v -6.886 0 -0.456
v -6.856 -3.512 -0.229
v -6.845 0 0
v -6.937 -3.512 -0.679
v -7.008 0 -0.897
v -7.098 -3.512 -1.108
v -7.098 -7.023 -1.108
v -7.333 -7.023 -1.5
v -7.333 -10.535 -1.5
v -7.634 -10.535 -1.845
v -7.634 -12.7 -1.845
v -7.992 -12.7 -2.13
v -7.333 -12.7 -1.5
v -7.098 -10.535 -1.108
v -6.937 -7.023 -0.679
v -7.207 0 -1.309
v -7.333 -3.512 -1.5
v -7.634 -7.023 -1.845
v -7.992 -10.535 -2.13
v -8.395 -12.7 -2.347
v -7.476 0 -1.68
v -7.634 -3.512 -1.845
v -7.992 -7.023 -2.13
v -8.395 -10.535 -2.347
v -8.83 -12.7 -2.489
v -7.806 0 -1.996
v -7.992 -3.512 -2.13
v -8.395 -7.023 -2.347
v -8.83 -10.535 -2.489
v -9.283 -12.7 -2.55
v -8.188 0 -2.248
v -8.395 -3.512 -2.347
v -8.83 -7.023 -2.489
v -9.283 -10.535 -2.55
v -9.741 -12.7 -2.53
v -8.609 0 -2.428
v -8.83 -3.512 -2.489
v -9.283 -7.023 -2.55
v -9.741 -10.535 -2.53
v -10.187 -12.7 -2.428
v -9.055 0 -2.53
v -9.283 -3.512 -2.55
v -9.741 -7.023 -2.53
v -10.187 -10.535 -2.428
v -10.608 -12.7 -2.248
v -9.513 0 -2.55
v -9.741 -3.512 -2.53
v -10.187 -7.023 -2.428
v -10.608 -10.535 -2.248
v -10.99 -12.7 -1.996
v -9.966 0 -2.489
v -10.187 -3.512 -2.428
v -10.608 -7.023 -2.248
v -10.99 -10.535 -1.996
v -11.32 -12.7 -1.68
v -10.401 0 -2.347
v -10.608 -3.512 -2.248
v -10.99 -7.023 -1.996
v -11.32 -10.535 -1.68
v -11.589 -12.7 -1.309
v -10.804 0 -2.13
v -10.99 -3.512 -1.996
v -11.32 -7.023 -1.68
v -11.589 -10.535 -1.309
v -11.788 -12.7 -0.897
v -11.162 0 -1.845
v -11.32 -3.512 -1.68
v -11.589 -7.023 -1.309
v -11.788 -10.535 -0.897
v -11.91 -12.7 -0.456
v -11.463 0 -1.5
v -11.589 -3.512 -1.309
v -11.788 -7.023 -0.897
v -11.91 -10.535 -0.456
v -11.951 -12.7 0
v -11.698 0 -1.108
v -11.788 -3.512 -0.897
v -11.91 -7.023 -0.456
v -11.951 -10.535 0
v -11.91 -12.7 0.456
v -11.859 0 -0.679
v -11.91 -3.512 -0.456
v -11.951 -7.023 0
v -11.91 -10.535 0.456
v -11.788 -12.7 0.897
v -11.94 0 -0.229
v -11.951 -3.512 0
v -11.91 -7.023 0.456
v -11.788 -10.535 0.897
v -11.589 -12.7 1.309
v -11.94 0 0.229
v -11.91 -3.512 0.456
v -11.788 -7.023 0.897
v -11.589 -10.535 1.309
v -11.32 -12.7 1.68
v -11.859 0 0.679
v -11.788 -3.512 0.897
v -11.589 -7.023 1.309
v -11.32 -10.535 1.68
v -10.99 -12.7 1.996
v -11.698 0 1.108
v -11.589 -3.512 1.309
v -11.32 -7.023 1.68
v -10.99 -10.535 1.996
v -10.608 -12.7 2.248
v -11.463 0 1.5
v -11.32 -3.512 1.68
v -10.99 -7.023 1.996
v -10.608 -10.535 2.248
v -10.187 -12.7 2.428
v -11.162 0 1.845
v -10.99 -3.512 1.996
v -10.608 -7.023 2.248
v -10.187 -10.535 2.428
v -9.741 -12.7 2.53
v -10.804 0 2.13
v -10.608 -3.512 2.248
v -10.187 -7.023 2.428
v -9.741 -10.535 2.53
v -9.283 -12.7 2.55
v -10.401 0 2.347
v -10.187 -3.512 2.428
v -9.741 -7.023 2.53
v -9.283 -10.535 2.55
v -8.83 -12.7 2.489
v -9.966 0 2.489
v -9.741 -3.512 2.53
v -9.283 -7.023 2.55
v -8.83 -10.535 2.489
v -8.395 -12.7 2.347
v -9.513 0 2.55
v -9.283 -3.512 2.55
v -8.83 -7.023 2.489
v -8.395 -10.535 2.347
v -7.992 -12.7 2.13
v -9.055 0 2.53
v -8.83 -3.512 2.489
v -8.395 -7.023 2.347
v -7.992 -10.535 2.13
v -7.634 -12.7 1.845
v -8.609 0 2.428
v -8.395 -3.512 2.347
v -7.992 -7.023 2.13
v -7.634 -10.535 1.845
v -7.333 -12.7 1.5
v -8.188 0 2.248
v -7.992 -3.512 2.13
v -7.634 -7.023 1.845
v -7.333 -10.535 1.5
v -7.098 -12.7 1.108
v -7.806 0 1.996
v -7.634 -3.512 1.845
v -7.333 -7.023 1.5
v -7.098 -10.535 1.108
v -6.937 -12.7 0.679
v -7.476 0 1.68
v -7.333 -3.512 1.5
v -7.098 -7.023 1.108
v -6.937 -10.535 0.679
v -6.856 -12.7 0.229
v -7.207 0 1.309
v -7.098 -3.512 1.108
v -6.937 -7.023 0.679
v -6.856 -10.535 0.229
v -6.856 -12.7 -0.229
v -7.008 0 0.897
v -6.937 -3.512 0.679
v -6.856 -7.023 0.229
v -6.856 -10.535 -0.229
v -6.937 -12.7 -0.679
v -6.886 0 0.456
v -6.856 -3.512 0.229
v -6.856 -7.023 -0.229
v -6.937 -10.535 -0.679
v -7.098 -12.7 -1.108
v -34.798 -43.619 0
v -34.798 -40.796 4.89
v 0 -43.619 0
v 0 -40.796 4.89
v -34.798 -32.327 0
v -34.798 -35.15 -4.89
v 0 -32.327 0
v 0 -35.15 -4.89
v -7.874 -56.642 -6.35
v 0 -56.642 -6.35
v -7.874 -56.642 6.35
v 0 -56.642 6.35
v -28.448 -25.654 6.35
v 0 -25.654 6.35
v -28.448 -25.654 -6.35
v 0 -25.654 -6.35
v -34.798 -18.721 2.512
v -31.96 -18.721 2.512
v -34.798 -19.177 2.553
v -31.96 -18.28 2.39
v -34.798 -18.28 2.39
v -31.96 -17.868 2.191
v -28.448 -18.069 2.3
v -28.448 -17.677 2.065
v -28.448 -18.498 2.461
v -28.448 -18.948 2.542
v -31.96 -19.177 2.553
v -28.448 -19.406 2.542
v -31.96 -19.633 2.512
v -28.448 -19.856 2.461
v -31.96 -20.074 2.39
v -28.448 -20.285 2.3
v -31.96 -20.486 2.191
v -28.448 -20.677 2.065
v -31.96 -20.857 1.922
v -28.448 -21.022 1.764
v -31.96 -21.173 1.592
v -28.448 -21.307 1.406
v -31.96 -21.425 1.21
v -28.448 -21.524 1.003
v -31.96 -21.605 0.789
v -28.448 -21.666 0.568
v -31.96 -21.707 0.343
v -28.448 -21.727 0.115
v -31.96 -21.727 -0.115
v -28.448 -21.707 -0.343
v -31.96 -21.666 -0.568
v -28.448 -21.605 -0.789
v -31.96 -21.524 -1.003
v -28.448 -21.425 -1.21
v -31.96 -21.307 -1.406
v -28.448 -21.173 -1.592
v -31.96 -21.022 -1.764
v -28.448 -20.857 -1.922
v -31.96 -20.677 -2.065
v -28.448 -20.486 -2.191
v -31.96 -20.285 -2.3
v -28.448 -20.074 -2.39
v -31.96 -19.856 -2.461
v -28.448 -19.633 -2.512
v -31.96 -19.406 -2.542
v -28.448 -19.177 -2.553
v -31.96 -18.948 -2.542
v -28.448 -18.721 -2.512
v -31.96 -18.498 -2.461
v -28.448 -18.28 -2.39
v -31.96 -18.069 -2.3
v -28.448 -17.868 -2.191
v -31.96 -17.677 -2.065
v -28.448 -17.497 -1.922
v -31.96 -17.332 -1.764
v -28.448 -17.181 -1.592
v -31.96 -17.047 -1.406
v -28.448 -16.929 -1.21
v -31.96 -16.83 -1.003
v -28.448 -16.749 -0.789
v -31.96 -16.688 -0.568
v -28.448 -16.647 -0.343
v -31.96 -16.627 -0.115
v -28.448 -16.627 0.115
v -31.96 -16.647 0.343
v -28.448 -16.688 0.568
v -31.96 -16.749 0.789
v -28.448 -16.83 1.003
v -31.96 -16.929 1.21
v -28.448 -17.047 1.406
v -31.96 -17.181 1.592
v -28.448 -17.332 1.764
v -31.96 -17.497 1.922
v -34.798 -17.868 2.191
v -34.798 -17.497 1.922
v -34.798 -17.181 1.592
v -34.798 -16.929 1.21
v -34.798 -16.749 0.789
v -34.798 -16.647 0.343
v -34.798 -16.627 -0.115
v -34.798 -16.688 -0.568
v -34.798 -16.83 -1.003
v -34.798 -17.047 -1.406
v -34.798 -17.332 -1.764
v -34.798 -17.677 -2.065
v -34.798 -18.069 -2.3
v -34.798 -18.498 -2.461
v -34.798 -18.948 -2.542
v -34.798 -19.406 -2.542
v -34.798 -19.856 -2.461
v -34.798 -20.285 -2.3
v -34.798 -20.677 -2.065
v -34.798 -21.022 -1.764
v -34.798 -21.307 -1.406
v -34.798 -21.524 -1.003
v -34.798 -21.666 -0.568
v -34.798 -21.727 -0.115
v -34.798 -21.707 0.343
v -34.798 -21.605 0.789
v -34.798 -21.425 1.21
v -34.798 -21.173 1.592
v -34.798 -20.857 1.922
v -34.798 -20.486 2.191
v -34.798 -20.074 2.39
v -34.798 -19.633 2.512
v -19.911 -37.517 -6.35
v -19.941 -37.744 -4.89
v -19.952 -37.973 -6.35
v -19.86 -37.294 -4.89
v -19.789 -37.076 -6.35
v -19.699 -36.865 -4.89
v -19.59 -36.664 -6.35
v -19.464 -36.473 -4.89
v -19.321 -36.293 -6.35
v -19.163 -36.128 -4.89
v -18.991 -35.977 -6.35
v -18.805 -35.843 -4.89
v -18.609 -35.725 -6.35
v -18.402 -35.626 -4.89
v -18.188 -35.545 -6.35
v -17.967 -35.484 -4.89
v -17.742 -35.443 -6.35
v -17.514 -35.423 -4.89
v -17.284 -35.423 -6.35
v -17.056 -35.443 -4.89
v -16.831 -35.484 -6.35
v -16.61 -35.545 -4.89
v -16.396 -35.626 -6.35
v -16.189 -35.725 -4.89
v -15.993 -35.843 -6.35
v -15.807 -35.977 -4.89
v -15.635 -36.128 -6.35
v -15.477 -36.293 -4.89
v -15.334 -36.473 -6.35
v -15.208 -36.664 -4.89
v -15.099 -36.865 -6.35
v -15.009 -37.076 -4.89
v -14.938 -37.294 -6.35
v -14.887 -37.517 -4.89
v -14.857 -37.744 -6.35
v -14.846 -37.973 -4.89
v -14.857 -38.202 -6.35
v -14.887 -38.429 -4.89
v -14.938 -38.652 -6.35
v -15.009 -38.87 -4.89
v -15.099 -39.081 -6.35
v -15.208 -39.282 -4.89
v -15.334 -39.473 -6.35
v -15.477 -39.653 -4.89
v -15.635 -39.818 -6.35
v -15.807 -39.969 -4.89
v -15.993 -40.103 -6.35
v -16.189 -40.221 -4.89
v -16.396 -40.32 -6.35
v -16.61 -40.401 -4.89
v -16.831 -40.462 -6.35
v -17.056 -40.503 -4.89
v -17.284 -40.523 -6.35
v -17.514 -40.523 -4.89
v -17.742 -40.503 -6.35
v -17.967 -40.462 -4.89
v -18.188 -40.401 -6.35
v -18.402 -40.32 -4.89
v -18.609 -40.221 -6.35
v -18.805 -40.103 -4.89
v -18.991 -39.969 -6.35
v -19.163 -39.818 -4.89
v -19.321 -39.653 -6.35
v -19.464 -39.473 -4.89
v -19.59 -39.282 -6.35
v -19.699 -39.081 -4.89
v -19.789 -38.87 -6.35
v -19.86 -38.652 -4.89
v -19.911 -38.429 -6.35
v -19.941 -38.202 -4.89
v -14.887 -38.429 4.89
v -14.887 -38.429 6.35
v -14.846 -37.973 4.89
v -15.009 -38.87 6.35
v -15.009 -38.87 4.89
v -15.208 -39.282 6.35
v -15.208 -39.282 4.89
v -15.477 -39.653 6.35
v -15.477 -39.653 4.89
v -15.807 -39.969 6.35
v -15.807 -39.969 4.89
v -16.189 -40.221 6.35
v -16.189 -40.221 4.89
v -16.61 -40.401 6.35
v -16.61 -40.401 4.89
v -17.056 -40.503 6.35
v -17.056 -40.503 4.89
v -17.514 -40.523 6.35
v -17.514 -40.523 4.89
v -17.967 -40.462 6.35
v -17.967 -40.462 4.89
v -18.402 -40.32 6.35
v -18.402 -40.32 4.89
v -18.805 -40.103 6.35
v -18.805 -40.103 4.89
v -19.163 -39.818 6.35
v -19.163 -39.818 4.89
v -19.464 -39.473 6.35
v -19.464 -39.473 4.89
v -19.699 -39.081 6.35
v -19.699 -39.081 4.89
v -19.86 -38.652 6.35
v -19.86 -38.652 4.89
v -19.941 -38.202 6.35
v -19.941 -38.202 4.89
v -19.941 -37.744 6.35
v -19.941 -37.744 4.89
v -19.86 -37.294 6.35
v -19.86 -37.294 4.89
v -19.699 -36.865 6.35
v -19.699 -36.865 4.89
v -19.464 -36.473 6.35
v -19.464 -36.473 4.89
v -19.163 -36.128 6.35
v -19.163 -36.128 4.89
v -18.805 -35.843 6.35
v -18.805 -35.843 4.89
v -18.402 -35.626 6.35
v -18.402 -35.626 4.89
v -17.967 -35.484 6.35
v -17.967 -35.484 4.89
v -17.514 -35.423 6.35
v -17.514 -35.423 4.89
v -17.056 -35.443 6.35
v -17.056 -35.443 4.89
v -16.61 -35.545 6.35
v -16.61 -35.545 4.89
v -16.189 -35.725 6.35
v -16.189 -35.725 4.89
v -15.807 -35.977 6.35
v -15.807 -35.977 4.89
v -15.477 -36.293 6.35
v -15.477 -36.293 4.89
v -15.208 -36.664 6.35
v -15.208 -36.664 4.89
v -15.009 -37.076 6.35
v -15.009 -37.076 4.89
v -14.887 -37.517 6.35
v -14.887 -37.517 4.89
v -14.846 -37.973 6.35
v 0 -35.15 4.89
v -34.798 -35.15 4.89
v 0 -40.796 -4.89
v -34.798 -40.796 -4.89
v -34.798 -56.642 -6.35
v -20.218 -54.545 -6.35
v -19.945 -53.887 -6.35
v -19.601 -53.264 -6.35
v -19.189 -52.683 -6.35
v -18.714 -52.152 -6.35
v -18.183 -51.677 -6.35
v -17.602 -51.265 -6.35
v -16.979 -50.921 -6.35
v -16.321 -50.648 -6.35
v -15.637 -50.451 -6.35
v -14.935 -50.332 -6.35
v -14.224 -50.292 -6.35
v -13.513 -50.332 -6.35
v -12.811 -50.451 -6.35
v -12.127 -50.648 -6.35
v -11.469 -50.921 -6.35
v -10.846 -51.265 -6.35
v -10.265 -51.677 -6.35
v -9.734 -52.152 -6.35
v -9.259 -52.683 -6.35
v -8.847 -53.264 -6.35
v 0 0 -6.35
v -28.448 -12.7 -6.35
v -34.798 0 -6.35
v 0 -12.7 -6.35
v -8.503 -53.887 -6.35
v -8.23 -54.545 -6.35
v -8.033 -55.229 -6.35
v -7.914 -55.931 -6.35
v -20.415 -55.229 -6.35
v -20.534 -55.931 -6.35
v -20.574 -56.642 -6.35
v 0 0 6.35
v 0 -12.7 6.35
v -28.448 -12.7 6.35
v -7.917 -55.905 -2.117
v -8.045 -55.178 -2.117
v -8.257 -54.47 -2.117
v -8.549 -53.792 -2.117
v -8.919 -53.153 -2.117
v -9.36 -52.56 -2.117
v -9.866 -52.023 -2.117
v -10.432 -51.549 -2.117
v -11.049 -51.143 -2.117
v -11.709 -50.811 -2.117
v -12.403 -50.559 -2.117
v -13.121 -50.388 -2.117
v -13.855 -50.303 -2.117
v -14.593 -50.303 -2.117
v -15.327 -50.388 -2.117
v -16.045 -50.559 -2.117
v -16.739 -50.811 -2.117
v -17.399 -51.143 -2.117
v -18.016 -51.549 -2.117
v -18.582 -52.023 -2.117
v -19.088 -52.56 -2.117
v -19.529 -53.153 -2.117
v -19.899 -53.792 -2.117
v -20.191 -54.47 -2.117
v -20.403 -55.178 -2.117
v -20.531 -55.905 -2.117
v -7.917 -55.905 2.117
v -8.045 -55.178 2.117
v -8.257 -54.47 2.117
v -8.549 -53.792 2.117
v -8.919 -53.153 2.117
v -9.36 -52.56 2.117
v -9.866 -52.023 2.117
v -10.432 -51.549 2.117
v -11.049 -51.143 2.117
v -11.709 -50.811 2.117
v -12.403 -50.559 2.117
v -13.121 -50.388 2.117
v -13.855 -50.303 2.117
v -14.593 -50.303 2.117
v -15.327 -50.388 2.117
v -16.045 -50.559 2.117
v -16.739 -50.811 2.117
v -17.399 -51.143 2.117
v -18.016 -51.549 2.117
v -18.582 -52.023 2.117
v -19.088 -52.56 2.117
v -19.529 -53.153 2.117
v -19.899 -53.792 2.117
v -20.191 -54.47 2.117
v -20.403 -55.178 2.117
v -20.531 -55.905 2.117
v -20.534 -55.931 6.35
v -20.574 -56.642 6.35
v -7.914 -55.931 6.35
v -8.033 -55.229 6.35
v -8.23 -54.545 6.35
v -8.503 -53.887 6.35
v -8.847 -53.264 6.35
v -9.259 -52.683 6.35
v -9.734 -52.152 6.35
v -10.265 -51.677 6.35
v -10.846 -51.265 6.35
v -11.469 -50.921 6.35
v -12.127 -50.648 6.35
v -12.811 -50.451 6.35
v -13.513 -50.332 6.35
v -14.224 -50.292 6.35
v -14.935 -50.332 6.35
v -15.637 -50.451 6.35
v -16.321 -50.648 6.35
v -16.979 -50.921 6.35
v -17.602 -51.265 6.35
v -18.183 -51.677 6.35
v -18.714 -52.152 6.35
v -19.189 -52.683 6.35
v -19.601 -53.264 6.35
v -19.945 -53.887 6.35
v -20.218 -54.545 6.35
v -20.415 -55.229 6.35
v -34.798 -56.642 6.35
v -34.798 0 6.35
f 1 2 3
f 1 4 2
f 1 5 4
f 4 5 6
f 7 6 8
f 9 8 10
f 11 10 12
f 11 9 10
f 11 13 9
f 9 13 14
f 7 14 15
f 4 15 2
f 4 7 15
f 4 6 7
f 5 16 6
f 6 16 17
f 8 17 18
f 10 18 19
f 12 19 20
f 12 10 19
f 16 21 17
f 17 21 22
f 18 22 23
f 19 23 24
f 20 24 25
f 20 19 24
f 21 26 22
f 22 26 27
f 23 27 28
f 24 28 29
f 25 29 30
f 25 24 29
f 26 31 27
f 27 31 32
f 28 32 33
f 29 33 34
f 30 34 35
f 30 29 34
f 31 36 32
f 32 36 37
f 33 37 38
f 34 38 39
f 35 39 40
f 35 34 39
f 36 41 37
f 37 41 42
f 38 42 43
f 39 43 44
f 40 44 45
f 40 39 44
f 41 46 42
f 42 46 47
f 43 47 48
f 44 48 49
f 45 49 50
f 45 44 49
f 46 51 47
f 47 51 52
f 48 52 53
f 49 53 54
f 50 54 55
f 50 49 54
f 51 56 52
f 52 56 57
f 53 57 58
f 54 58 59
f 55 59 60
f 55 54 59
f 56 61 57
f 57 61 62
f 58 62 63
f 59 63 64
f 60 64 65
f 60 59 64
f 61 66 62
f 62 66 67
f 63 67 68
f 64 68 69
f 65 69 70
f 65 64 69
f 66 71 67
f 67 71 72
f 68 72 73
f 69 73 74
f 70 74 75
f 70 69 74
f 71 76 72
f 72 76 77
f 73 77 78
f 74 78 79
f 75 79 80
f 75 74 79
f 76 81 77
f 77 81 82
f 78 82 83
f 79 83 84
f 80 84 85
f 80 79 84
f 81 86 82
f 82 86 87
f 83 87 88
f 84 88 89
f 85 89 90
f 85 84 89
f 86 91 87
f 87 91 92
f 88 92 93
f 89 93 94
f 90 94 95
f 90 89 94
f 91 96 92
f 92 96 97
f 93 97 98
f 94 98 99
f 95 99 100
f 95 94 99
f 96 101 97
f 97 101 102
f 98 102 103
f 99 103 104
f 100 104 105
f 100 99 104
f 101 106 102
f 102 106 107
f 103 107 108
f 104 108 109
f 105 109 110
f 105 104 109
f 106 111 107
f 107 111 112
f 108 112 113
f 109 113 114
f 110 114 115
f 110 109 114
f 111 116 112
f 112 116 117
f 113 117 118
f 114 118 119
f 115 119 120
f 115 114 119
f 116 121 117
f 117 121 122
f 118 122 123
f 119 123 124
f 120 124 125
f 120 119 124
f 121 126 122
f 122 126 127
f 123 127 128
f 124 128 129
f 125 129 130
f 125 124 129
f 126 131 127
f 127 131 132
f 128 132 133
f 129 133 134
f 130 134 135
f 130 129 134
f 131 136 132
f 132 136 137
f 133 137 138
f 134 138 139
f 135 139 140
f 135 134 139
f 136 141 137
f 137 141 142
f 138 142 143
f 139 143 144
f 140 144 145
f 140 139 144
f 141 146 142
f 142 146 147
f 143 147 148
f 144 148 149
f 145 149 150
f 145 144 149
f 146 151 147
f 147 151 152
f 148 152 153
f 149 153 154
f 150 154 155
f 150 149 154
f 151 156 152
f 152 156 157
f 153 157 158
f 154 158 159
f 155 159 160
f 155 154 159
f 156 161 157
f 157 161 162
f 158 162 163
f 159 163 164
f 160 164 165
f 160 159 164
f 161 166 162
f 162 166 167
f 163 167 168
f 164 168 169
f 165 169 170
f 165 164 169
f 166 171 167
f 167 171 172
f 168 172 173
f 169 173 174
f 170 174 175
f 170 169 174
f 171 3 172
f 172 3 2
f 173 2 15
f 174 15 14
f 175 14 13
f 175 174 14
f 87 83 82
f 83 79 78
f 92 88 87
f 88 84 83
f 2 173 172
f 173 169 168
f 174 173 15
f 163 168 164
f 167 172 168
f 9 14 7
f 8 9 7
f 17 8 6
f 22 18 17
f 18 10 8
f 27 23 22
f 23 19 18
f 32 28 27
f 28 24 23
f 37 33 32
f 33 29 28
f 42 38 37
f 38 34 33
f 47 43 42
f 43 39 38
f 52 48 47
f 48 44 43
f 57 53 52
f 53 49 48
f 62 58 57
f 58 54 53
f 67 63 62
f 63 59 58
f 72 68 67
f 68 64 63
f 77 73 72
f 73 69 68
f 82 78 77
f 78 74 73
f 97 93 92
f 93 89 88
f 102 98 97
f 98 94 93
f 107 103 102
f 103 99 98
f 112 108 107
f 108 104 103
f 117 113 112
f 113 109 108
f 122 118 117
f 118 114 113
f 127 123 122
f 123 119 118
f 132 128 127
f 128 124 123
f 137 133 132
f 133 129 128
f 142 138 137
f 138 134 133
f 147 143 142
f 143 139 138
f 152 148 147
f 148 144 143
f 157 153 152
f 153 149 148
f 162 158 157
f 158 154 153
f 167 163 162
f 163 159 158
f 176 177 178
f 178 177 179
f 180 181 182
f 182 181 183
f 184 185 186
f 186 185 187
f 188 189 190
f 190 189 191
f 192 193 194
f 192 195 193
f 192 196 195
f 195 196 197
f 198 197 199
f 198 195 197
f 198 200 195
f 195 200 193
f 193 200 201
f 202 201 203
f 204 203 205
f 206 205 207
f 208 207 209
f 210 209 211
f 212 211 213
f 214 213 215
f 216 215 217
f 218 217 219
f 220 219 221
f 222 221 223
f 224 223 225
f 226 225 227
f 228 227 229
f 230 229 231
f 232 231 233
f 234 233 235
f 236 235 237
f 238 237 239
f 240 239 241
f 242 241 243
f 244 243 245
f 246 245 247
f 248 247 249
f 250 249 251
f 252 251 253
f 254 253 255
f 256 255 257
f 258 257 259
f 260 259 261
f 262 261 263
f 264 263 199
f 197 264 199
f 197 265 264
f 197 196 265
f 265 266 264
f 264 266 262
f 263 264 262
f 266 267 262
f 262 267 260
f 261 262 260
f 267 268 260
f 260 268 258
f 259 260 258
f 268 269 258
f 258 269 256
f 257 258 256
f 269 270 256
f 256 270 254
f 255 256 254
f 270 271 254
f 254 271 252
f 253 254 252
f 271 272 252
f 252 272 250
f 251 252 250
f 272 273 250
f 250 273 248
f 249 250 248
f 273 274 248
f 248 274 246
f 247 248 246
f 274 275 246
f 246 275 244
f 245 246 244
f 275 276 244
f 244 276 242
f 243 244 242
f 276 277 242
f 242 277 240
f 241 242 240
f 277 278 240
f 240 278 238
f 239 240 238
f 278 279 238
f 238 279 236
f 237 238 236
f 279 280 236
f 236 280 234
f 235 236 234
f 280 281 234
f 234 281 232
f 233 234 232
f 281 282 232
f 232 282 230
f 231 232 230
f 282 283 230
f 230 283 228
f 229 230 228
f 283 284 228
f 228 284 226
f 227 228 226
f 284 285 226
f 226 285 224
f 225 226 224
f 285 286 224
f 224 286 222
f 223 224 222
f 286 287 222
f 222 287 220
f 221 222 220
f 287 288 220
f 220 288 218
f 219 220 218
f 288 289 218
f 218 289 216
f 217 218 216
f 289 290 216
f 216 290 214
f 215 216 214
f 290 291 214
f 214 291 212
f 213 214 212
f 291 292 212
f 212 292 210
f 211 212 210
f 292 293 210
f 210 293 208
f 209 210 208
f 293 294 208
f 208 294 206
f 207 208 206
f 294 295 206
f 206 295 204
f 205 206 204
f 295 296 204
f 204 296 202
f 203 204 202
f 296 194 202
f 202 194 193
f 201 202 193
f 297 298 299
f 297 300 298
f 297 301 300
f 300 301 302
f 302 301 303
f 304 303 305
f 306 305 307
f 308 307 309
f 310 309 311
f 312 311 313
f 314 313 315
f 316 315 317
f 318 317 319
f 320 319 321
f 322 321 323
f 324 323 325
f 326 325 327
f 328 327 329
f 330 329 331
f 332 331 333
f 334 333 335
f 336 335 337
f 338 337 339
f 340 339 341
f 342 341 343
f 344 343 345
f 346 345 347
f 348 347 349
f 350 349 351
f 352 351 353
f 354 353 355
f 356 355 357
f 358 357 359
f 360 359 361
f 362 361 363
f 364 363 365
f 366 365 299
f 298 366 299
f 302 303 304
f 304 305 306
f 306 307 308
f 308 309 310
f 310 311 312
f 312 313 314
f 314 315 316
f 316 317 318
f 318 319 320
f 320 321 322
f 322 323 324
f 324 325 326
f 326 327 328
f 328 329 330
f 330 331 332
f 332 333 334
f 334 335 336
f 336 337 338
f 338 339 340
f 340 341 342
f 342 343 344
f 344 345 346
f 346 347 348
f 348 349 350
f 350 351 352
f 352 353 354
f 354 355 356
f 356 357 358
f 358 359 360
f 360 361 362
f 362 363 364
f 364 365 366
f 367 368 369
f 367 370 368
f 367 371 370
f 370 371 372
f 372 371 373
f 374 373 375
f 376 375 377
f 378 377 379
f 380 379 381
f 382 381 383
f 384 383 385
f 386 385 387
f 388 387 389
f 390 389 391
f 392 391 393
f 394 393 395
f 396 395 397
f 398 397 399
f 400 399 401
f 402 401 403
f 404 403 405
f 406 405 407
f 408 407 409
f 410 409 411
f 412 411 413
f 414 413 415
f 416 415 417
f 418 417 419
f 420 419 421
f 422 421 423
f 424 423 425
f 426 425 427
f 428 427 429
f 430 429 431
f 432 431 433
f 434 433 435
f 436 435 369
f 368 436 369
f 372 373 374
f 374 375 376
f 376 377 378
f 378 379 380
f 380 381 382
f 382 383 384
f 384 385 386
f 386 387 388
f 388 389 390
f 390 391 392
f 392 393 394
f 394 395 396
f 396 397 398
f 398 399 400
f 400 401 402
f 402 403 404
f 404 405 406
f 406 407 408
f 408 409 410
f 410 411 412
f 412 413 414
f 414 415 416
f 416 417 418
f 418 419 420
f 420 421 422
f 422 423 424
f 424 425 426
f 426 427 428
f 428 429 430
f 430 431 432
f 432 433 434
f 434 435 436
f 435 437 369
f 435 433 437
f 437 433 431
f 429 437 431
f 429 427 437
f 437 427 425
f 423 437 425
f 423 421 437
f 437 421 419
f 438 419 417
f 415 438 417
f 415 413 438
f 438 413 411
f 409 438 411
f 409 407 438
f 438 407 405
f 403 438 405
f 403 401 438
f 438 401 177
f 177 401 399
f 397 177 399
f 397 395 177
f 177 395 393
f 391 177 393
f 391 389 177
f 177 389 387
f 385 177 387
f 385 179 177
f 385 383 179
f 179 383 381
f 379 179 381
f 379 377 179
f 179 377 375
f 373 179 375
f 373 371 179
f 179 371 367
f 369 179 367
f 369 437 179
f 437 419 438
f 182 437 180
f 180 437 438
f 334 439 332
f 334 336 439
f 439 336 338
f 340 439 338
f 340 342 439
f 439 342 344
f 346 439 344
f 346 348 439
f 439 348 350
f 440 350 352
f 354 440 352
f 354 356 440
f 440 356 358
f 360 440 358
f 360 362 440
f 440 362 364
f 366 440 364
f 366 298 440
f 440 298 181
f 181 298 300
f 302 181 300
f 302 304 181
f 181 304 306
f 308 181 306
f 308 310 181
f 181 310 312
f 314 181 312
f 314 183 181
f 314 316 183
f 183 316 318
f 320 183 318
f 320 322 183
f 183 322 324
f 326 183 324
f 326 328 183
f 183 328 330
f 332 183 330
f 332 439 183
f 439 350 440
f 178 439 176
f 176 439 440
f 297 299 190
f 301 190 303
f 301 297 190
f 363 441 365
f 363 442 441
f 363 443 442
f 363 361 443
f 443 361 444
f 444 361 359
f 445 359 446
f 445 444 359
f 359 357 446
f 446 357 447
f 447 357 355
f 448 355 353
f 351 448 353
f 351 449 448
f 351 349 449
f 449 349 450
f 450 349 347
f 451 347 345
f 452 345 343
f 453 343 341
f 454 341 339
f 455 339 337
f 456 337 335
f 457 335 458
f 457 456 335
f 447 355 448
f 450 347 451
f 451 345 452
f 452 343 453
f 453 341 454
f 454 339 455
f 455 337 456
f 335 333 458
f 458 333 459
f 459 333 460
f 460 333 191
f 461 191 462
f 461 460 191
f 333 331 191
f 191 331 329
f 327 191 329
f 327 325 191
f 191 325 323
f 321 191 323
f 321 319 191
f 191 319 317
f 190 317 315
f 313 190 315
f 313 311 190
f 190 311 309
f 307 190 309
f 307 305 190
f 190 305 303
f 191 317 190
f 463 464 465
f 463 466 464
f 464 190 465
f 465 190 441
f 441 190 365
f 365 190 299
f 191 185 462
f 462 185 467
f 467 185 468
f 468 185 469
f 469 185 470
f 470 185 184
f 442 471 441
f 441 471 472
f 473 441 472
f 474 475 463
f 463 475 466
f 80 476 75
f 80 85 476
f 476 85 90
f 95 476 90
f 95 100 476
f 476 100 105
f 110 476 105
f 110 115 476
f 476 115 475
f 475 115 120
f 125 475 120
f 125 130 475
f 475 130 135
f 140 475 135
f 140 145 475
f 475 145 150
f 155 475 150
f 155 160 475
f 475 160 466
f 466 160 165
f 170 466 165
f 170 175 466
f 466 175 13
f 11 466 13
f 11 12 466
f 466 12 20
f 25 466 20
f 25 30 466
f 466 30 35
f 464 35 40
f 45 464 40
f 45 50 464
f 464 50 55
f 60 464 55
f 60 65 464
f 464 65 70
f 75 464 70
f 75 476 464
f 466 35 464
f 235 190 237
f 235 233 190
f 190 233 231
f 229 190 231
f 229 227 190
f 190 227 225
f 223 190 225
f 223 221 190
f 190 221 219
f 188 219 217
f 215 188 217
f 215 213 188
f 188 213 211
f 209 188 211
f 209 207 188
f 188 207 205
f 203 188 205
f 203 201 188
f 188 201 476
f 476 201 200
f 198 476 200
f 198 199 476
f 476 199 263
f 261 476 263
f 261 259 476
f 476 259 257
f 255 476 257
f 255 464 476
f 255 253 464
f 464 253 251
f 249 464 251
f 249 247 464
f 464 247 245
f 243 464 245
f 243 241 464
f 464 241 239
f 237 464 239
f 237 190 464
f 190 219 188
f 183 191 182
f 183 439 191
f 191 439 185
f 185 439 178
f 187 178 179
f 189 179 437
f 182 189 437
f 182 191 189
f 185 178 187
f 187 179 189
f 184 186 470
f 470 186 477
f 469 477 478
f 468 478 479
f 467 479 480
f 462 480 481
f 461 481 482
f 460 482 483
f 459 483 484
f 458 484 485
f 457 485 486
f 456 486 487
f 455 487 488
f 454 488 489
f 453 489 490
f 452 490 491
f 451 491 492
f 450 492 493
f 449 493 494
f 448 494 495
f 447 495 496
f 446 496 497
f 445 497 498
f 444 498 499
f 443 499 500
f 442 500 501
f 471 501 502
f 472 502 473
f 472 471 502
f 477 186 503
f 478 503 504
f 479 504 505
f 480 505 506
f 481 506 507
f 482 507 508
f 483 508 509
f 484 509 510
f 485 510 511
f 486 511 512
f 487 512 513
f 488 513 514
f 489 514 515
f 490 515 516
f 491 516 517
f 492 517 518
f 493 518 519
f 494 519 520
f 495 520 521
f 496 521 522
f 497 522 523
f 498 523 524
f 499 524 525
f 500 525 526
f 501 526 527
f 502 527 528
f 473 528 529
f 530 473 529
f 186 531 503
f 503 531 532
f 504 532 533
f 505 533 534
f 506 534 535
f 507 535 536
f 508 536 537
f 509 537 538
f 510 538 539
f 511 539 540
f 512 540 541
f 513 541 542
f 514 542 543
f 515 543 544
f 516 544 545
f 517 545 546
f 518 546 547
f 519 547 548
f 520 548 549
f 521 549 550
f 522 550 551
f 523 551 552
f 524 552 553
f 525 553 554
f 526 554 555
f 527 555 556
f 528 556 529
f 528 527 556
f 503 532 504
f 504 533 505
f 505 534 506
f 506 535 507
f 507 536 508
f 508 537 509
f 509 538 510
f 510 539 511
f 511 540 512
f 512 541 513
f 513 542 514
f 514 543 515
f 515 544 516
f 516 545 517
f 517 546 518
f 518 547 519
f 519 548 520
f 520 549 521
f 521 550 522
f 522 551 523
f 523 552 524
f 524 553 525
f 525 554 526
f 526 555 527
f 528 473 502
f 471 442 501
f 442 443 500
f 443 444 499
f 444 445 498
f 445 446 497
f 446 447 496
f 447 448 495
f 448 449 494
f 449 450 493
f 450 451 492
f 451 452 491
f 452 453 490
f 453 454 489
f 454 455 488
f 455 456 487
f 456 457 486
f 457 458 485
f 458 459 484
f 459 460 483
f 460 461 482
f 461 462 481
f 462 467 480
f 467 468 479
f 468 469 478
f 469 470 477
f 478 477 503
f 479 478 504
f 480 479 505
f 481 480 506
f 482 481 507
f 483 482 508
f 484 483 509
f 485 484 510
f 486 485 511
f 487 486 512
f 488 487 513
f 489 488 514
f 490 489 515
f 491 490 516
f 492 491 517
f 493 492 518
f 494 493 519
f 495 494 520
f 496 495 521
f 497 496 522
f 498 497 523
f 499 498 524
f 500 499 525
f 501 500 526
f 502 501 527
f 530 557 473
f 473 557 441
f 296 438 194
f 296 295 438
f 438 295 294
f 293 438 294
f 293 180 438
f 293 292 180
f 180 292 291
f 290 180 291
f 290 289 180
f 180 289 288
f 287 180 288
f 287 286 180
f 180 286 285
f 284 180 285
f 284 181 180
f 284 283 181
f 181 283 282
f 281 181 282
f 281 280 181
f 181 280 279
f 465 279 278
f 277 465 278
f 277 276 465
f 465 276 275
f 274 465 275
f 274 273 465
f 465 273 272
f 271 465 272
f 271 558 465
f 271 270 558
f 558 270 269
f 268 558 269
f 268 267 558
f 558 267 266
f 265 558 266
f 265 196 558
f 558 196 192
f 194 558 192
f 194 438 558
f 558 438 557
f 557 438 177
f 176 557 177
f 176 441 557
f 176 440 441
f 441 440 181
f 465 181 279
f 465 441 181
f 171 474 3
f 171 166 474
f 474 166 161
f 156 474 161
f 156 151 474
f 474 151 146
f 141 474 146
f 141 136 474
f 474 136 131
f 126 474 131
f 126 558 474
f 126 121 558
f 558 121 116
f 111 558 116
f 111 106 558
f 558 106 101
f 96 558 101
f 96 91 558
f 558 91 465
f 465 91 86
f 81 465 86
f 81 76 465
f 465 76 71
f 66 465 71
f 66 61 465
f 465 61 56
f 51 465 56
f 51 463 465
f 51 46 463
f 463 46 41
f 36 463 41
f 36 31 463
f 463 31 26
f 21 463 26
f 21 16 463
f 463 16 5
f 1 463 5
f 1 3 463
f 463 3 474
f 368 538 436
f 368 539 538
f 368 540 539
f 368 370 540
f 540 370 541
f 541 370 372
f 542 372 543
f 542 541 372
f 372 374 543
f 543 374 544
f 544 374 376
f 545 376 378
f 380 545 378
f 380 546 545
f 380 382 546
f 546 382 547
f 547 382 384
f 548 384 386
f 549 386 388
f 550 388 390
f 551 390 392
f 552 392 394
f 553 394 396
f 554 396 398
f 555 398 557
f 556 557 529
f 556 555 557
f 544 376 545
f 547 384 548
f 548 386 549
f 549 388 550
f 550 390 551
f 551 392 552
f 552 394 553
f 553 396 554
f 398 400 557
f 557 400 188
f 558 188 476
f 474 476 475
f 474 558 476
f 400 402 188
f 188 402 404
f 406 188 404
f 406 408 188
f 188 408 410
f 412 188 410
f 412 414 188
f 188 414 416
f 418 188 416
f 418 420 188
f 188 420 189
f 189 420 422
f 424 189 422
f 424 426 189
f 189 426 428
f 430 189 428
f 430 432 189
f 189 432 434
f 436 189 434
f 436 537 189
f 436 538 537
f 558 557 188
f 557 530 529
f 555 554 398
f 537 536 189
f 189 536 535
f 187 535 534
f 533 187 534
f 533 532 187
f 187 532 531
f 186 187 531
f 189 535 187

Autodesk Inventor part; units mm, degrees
ref_plane "YZ Plane" through (0, 0, 0) normal (1, 0, 0) x (0, 1, 0)
ref_plane "XZ Plane" through (0, 0, 0) normal (0, 1, 0) x (-1, 0, 0)
ref_plane "XY Plane" through (0, 0, 0) normal (0, 0, 1) x (1, 0, 0)
sketch "Sketch1" plane through (0, 0, 0) normal (0, 0, 1) x (1, 0, 0)
  line L0 (0, 0) -> (-34.798, 0)
  line L1 (-34.798, 0) -> (-34.798, -56.642)
  line L2 (0, -12.7) -> (-28.448, -12.7)
  line L3 (-28.448, -12.7) -> (-28.448, -25.654)
  line L4 (-28.448, -25.654) -> (0, -25.654)
  line L5 (0, -56.642) -> (0, -25.654)
  line L6 (0, -12.7) -> (0, 0)
  arc A0 (-7.874, -56.642) -> (-20.574, -56.642) centre (-14.224, -56.642) ccw
  line L7 (-34.798, -56.642) -> (-20.574, -56.642)
  line L8 (-7.874, -56.642) -> (0, -56.642)
  dimension "d0" = 56.642
  dimension "d1" = 34.798
  dimension "d4" = 12.7
  dimension "d5" = 28.448
  dimension "d6" = 12.954
  dimension "d50" = 6.35
  dimension "d51" = 14.224
  dimension "d71" = 56.642
  dimension "d72" = 56.642
extrude "Extrusion4" add sketch "Sketch1" along normal mid plane 12.7
sketch "Sketch9" plane through (-34.798, -56.642, 6.35) normal (-1, 0, 0) x (0, 0, 1)
  line L0 (-12.7, 30.988) -> (0, 30.988) construction
  line L1 (-12.7, 0) -> (-12.7, 6.35) construction
  line L2 (0, 30.988) -> (-12.7, 6.35) construction
  line L3 (0, 6.35) -> (0, 0) construction
  line L4 (0, 6.35) -> (-12.7, 30.988) construction
  line L5 (-6.35, 24.3149) -> (-1.4605, 21.492)
  line L6 (-1.4605, 21.492) -> (-1.4605, 15.846)
  line L7 (-1.4605, 15.846) -> (-6.35, 13.0231)
  line L8 (-6.35, 13.0231) -> (-11.2395, 15.846)
  line L9 (-11.2395, 15.846) -> (-11.2395, 21.492)
  line L10 (-11.2395, 21.492) -> (-6.35, 24.3149)
  line L11 (-12.7, 0) -> (-12.7, 56.642) projected
  point P0 (-6.35, 56.642)
  point P1 (-6.35, 18.669)
  dimension "d61" = 9.779
extrude "Extrusion5" cut sketch "Sketch9" against normal through all
sketch "Sketch10" plane through (0, 0, -6.35) normal (0, 0, -1) x (-1, 0, 0)
  line L0 (34.798, -40.796) -> (0, -40.796) projected
  line L1 (34.798, -35.15) -> (0, -35.15) projected
  line L2 (0, -35.15) -> (34.798, -40.796) construction
  line L3 (34.798, -35.15) -> (0, -35.15) construction
  line L4 (0, -40.796) -> (34.798, -35.15) construction
  point P0 (0, 0)
  point P1 (17.399, -37.973)
hole "Hole6" at (-17.399, -37.973, -6.35) direction (0, 0, 1) diameter 5.1054 end through all clearance for "Flat Head Machine Screw (82)" size "#10" standard "Ansi Unified Screw Threads"
sketch "Sketch11" plane through (-28.448, -25.654, 6.35) normal (1, 0, 0) x (0, 0, -1)
  line L0 (0, -30.988) -> (0, 0) construction
  line L1 (12.7, 12.954) -> (12.7, 0) construction
  line L2 (0, 0) -> (12.7, 12.954) construction
  line L3 (12.7, 12.954) -> (0, 12.954) construction
  line L4 (12.7, 12.954) -> (0, 12.954) construction
  line L5 (0, 12.954) -> (12.7, 0) construction
  point P0 (6.35, 25.654)
  point P1 (6.35, 6.477)
hole "Hole7" at (-28.448, -19.177, 0) direction (-1, 0, 0) diameter 5.1054 end through all clearance for "Flat Head Machine Screw (82)" size "#10" standard "Ansi Unified Screw Threads"
sketch "Sketch12" plane through (-34.798, 0, 6.35) normal (0, 1, 0) x (1, 0, 0)
  line L0 (0, 12.7) -> (0, 0) construction
  point P0 (34.798, 6.35)
  point P1 (25.4, 6.35)
  dimension "d80" = 25.4
hole "Hole8" at (-9.398, 0, 0) direction (0, -1, 0) diameter 5.1054 end up to surface clearance for "Flat Head Machine Screw (82)" size "#10" standard "Ansi Unified Screw Threads"
equation "\"d6\" = slotWidth + printerOffset"
equation "\"d50\" = 0.5 * outsideCylnderDiam"
equation "\"d51\" = centerLineOfCylinder"
equation "\"d52\" = partWidth"
equation "\"d61\" = hexTubing"
equation "\"d62\" = partWidth"
equation "\"centerLineOfCylinder\" = 14.224"
equation "\"slotWidth\" = 12.7"
equation "\"outsideCylnderDiam\" = 12.7"
equation "\"partWidth\" = 12.7"
equation "\"printerOffset\" = 0.254"
equation "\"hexTubing\" = 9.779"
properties part number "vexOverSupportForArm"
